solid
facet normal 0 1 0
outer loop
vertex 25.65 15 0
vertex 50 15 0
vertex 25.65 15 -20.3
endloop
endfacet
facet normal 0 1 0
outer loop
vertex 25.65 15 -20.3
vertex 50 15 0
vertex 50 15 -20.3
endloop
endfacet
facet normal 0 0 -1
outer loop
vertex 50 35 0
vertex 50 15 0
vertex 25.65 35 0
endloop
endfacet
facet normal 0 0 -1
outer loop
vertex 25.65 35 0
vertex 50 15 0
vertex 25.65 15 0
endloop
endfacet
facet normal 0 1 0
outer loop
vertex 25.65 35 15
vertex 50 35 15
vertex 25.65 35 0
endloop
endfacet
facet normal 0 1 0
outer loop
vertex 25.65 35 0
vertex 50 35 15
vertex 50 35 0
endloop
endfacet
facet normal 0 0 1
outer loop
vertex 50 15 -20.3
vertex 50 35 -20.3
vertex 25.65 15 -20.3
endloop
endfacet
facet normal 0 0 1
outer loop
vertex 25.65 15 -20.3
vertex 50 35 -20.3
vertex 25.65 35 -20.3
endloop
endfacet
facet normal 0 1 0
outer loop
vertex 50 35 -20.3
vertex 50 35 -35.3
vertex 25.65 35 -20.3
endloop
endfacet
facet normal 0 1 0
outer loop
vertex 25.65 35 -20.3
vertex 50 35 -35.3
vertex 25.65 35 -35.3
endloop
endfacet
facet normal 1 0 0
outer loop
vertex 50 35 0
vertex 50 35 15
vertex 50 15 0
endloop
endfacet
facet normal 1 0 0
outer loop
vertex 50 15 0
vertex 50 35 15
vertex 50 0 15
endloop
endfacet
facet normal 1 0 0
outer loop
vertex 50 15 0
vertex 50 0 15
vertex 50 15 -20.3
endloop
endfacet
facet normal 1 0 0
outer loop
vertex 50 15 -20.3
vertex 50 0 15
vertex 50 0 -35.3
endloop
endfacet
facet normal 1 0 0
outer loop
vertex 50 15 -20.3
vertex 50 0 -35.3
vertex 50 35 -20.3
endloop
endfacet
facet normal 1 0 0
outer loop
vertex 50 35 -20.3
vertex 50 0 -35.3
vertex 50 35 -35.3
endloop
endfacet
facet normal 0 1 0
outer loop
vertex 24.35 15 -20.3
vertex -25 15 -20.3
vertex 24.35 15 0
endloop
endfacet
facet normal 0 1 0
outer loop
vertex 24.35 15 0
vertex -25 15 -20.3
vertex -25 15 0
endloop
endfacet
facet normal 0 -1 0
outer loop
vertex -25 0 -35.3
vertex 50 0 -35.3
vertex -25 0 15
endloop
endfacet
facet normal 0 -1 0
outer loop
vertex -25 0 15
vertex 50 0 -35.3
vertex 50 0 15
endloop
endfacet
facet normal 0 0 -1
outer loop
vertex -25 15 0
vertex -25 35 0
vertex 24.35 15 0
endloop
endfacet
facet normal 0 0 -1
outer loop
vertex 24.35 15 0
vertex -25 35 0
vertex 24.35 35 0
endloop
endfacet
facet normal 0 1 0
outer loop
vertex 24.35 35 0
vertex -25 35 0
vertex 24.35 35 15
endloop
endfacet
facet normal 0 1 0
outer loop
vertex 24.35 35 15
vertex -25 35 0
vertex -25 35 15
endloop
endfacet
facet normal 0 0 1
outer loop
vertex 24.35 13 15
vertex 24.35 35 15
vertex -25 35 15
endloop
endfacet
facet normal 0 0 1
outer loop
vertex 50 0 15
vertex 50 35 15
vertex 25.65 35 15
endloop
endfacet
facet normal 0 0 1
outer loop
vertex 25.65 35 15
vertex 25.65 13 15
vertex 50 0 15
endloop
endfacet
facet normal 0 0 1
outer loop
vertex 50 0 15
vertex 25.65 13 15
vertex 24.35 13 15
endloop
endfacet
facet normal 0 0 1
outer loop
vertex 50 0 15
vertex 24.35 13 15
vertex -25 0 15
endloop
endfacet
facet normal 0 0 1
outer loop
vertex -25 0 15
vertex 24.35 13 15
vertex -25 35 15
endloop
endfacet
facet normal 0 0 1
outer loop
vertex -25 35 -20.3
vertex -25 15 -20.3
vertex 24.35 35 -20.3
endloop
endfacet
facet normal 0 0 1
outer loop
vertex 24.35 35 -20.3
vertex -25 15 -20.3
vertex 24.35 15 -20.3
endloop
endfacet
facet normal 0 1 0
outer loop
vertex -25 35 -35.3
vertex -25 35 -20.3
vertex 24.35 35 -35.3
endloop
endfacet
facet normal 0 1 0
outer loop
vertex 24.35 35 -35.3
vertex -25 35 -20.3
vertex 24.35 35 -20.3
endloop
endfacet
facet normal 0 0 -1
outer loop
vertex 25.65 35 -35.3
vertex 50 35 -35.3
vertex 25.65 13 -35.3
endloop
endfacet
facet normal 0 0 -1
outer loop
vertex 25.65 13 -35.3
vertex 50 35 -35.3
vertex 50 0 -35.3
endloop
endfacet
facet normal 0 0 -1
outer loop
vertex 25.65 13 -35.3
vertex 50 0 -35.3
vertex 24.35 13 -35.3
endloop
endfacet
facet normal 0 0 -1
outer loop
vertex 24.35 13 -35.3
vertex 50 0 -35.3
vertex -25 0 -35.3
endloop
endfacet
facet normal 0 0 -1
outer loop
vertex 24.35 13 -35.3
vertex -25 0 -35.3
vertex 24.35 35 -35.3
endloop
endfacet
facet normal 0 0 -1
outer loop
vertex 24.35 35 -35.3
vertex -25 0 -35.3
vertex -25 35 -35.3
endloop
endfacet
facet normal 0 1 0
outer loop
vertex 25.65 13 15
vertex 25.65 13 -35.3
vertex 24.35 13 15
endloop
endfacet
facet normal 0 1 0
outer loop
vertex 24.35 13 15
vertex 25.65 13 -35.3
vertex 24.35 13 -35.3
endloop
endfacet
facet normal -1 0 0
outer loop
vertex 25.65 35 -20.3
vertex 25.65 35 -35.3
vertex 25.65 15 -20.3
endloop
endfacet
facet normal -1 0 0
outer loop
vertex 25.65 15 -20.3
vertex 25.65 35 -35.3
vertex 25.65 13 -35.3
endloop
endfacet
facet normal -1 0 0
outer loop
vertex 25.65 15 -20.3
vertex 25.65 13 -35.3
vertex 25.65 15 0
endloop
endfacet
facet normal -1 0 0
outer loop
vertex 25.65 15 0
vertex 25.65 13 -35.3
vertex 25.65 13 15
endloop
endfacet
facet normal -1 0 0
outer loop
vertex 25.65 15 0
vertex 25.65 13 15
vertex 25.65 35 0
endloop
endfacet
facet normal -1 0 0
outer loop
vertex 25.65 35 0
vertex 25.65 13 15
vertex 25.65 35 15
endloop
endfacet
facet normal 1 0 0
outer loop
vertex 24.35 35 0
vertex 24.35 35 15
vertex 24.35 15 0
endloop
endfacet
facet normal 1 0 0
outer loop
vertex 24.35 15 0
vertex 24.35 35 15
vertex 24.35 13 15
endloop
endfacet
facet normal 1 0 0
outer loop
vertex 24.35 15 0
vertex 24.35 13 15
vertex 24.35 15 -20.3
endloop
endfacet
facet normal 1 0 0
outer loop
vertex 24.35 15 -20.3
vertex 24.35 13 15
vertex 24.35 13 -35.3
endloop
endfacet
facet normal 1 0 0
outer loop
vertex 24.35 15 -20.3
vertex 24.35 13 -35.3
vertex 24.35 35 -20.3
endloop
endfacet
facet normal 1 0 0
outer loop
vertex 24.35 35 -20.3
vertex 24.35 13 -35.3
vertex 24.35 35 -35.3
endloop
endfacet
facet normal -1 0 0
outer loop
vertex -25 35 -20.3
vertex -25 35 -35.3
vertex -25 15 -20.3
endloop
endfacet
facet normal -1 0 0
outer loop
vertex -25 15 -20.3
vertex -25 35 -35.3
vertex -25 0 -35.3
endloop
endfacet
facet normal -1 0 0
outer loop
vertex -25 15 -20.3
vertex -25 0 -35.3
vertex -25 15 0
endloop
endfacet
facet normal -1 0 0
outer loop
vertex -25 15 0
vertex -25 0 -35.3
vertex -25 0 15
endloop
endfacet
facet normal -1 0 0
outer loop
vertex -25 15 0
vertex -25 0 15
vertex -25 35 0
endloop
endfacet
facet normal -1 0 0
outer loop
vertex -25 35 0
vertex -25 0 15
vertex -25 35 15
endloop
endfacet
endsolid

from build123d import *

# Parameters (mm, degrees)
SKETCH1_W           = 50
SKETCH1_H           = 20.3
BOSS_EXTRUDE1_DEPTH = 15
SKETCH2_W           = 50
SKETCH2_H           = 35
BOSS_EXTRUDE2_DEPTH = 15
SKETCH3_W           = 1.3
SKETCH3_H           = 50.3
CUT_EXTRUDE1_DEPTH  = 22
BOSS_EXTRUDE3_DEPTH = 25


with BuildPart() as part:
    # Sketch1 → Boss-Extrude1 (new body)
    with BuildSketch(Plane(origin=(0, 0, 0), x_dir=(1, 0, 0), z_dir=(0, 1, 0))):
        with Locations((25, 10.15)):
            Rectangle(SKETCH1_W, SKETCH1_H)
    extrude(amount=BOSS_EXTRUDE1_DEPTH)

    # Sketch2 → Boss-Extrude2 (add)
    with BuildSketch(Plane.XY):
        with Locations((25, 17.5)):
            Rectangle(SKETCH2_W, SKETCH2_H)
    boss_extrude2 = extrude(amount=BOSS_EXTRUDE2_DEPTH)

    # Mirror1: Boss-Extrude2 across plane
    add(boss_extrude2.mirror(Plane(origin=(0, 0, -10.15), x_dir=(1, 0, 0), z_dir=(0, 0, -1))))

    # Sketch3 → Cut-Extrude1 (cut)
    with BuildSketch(Plane(origin=(0, 35, 0), x_dir=(1, 0, 0), z_dir=(0, 1, 0))):
        with Locations((25, 10.15)):
            Rectangle(SKETCH3_W, SKETCH3_H)
    extrude(amount=-CUT_EXTRUDE1_DEPTH, mode=Mode.SUBTRACT)

    # Sketch4 → Boss-Extrude3 (add)
    with BuildSketch(Plane.ZY):
        Polygon((-35.3, 0), (15, 0), (15, 35), (0, 35), (0, 15), (-20.3, 15), (-20.3, 35), (-35.3, 35), align=None)
    extrude(amount=BOSS_EXTRUDE3_DEPTH)


solid = part.part
